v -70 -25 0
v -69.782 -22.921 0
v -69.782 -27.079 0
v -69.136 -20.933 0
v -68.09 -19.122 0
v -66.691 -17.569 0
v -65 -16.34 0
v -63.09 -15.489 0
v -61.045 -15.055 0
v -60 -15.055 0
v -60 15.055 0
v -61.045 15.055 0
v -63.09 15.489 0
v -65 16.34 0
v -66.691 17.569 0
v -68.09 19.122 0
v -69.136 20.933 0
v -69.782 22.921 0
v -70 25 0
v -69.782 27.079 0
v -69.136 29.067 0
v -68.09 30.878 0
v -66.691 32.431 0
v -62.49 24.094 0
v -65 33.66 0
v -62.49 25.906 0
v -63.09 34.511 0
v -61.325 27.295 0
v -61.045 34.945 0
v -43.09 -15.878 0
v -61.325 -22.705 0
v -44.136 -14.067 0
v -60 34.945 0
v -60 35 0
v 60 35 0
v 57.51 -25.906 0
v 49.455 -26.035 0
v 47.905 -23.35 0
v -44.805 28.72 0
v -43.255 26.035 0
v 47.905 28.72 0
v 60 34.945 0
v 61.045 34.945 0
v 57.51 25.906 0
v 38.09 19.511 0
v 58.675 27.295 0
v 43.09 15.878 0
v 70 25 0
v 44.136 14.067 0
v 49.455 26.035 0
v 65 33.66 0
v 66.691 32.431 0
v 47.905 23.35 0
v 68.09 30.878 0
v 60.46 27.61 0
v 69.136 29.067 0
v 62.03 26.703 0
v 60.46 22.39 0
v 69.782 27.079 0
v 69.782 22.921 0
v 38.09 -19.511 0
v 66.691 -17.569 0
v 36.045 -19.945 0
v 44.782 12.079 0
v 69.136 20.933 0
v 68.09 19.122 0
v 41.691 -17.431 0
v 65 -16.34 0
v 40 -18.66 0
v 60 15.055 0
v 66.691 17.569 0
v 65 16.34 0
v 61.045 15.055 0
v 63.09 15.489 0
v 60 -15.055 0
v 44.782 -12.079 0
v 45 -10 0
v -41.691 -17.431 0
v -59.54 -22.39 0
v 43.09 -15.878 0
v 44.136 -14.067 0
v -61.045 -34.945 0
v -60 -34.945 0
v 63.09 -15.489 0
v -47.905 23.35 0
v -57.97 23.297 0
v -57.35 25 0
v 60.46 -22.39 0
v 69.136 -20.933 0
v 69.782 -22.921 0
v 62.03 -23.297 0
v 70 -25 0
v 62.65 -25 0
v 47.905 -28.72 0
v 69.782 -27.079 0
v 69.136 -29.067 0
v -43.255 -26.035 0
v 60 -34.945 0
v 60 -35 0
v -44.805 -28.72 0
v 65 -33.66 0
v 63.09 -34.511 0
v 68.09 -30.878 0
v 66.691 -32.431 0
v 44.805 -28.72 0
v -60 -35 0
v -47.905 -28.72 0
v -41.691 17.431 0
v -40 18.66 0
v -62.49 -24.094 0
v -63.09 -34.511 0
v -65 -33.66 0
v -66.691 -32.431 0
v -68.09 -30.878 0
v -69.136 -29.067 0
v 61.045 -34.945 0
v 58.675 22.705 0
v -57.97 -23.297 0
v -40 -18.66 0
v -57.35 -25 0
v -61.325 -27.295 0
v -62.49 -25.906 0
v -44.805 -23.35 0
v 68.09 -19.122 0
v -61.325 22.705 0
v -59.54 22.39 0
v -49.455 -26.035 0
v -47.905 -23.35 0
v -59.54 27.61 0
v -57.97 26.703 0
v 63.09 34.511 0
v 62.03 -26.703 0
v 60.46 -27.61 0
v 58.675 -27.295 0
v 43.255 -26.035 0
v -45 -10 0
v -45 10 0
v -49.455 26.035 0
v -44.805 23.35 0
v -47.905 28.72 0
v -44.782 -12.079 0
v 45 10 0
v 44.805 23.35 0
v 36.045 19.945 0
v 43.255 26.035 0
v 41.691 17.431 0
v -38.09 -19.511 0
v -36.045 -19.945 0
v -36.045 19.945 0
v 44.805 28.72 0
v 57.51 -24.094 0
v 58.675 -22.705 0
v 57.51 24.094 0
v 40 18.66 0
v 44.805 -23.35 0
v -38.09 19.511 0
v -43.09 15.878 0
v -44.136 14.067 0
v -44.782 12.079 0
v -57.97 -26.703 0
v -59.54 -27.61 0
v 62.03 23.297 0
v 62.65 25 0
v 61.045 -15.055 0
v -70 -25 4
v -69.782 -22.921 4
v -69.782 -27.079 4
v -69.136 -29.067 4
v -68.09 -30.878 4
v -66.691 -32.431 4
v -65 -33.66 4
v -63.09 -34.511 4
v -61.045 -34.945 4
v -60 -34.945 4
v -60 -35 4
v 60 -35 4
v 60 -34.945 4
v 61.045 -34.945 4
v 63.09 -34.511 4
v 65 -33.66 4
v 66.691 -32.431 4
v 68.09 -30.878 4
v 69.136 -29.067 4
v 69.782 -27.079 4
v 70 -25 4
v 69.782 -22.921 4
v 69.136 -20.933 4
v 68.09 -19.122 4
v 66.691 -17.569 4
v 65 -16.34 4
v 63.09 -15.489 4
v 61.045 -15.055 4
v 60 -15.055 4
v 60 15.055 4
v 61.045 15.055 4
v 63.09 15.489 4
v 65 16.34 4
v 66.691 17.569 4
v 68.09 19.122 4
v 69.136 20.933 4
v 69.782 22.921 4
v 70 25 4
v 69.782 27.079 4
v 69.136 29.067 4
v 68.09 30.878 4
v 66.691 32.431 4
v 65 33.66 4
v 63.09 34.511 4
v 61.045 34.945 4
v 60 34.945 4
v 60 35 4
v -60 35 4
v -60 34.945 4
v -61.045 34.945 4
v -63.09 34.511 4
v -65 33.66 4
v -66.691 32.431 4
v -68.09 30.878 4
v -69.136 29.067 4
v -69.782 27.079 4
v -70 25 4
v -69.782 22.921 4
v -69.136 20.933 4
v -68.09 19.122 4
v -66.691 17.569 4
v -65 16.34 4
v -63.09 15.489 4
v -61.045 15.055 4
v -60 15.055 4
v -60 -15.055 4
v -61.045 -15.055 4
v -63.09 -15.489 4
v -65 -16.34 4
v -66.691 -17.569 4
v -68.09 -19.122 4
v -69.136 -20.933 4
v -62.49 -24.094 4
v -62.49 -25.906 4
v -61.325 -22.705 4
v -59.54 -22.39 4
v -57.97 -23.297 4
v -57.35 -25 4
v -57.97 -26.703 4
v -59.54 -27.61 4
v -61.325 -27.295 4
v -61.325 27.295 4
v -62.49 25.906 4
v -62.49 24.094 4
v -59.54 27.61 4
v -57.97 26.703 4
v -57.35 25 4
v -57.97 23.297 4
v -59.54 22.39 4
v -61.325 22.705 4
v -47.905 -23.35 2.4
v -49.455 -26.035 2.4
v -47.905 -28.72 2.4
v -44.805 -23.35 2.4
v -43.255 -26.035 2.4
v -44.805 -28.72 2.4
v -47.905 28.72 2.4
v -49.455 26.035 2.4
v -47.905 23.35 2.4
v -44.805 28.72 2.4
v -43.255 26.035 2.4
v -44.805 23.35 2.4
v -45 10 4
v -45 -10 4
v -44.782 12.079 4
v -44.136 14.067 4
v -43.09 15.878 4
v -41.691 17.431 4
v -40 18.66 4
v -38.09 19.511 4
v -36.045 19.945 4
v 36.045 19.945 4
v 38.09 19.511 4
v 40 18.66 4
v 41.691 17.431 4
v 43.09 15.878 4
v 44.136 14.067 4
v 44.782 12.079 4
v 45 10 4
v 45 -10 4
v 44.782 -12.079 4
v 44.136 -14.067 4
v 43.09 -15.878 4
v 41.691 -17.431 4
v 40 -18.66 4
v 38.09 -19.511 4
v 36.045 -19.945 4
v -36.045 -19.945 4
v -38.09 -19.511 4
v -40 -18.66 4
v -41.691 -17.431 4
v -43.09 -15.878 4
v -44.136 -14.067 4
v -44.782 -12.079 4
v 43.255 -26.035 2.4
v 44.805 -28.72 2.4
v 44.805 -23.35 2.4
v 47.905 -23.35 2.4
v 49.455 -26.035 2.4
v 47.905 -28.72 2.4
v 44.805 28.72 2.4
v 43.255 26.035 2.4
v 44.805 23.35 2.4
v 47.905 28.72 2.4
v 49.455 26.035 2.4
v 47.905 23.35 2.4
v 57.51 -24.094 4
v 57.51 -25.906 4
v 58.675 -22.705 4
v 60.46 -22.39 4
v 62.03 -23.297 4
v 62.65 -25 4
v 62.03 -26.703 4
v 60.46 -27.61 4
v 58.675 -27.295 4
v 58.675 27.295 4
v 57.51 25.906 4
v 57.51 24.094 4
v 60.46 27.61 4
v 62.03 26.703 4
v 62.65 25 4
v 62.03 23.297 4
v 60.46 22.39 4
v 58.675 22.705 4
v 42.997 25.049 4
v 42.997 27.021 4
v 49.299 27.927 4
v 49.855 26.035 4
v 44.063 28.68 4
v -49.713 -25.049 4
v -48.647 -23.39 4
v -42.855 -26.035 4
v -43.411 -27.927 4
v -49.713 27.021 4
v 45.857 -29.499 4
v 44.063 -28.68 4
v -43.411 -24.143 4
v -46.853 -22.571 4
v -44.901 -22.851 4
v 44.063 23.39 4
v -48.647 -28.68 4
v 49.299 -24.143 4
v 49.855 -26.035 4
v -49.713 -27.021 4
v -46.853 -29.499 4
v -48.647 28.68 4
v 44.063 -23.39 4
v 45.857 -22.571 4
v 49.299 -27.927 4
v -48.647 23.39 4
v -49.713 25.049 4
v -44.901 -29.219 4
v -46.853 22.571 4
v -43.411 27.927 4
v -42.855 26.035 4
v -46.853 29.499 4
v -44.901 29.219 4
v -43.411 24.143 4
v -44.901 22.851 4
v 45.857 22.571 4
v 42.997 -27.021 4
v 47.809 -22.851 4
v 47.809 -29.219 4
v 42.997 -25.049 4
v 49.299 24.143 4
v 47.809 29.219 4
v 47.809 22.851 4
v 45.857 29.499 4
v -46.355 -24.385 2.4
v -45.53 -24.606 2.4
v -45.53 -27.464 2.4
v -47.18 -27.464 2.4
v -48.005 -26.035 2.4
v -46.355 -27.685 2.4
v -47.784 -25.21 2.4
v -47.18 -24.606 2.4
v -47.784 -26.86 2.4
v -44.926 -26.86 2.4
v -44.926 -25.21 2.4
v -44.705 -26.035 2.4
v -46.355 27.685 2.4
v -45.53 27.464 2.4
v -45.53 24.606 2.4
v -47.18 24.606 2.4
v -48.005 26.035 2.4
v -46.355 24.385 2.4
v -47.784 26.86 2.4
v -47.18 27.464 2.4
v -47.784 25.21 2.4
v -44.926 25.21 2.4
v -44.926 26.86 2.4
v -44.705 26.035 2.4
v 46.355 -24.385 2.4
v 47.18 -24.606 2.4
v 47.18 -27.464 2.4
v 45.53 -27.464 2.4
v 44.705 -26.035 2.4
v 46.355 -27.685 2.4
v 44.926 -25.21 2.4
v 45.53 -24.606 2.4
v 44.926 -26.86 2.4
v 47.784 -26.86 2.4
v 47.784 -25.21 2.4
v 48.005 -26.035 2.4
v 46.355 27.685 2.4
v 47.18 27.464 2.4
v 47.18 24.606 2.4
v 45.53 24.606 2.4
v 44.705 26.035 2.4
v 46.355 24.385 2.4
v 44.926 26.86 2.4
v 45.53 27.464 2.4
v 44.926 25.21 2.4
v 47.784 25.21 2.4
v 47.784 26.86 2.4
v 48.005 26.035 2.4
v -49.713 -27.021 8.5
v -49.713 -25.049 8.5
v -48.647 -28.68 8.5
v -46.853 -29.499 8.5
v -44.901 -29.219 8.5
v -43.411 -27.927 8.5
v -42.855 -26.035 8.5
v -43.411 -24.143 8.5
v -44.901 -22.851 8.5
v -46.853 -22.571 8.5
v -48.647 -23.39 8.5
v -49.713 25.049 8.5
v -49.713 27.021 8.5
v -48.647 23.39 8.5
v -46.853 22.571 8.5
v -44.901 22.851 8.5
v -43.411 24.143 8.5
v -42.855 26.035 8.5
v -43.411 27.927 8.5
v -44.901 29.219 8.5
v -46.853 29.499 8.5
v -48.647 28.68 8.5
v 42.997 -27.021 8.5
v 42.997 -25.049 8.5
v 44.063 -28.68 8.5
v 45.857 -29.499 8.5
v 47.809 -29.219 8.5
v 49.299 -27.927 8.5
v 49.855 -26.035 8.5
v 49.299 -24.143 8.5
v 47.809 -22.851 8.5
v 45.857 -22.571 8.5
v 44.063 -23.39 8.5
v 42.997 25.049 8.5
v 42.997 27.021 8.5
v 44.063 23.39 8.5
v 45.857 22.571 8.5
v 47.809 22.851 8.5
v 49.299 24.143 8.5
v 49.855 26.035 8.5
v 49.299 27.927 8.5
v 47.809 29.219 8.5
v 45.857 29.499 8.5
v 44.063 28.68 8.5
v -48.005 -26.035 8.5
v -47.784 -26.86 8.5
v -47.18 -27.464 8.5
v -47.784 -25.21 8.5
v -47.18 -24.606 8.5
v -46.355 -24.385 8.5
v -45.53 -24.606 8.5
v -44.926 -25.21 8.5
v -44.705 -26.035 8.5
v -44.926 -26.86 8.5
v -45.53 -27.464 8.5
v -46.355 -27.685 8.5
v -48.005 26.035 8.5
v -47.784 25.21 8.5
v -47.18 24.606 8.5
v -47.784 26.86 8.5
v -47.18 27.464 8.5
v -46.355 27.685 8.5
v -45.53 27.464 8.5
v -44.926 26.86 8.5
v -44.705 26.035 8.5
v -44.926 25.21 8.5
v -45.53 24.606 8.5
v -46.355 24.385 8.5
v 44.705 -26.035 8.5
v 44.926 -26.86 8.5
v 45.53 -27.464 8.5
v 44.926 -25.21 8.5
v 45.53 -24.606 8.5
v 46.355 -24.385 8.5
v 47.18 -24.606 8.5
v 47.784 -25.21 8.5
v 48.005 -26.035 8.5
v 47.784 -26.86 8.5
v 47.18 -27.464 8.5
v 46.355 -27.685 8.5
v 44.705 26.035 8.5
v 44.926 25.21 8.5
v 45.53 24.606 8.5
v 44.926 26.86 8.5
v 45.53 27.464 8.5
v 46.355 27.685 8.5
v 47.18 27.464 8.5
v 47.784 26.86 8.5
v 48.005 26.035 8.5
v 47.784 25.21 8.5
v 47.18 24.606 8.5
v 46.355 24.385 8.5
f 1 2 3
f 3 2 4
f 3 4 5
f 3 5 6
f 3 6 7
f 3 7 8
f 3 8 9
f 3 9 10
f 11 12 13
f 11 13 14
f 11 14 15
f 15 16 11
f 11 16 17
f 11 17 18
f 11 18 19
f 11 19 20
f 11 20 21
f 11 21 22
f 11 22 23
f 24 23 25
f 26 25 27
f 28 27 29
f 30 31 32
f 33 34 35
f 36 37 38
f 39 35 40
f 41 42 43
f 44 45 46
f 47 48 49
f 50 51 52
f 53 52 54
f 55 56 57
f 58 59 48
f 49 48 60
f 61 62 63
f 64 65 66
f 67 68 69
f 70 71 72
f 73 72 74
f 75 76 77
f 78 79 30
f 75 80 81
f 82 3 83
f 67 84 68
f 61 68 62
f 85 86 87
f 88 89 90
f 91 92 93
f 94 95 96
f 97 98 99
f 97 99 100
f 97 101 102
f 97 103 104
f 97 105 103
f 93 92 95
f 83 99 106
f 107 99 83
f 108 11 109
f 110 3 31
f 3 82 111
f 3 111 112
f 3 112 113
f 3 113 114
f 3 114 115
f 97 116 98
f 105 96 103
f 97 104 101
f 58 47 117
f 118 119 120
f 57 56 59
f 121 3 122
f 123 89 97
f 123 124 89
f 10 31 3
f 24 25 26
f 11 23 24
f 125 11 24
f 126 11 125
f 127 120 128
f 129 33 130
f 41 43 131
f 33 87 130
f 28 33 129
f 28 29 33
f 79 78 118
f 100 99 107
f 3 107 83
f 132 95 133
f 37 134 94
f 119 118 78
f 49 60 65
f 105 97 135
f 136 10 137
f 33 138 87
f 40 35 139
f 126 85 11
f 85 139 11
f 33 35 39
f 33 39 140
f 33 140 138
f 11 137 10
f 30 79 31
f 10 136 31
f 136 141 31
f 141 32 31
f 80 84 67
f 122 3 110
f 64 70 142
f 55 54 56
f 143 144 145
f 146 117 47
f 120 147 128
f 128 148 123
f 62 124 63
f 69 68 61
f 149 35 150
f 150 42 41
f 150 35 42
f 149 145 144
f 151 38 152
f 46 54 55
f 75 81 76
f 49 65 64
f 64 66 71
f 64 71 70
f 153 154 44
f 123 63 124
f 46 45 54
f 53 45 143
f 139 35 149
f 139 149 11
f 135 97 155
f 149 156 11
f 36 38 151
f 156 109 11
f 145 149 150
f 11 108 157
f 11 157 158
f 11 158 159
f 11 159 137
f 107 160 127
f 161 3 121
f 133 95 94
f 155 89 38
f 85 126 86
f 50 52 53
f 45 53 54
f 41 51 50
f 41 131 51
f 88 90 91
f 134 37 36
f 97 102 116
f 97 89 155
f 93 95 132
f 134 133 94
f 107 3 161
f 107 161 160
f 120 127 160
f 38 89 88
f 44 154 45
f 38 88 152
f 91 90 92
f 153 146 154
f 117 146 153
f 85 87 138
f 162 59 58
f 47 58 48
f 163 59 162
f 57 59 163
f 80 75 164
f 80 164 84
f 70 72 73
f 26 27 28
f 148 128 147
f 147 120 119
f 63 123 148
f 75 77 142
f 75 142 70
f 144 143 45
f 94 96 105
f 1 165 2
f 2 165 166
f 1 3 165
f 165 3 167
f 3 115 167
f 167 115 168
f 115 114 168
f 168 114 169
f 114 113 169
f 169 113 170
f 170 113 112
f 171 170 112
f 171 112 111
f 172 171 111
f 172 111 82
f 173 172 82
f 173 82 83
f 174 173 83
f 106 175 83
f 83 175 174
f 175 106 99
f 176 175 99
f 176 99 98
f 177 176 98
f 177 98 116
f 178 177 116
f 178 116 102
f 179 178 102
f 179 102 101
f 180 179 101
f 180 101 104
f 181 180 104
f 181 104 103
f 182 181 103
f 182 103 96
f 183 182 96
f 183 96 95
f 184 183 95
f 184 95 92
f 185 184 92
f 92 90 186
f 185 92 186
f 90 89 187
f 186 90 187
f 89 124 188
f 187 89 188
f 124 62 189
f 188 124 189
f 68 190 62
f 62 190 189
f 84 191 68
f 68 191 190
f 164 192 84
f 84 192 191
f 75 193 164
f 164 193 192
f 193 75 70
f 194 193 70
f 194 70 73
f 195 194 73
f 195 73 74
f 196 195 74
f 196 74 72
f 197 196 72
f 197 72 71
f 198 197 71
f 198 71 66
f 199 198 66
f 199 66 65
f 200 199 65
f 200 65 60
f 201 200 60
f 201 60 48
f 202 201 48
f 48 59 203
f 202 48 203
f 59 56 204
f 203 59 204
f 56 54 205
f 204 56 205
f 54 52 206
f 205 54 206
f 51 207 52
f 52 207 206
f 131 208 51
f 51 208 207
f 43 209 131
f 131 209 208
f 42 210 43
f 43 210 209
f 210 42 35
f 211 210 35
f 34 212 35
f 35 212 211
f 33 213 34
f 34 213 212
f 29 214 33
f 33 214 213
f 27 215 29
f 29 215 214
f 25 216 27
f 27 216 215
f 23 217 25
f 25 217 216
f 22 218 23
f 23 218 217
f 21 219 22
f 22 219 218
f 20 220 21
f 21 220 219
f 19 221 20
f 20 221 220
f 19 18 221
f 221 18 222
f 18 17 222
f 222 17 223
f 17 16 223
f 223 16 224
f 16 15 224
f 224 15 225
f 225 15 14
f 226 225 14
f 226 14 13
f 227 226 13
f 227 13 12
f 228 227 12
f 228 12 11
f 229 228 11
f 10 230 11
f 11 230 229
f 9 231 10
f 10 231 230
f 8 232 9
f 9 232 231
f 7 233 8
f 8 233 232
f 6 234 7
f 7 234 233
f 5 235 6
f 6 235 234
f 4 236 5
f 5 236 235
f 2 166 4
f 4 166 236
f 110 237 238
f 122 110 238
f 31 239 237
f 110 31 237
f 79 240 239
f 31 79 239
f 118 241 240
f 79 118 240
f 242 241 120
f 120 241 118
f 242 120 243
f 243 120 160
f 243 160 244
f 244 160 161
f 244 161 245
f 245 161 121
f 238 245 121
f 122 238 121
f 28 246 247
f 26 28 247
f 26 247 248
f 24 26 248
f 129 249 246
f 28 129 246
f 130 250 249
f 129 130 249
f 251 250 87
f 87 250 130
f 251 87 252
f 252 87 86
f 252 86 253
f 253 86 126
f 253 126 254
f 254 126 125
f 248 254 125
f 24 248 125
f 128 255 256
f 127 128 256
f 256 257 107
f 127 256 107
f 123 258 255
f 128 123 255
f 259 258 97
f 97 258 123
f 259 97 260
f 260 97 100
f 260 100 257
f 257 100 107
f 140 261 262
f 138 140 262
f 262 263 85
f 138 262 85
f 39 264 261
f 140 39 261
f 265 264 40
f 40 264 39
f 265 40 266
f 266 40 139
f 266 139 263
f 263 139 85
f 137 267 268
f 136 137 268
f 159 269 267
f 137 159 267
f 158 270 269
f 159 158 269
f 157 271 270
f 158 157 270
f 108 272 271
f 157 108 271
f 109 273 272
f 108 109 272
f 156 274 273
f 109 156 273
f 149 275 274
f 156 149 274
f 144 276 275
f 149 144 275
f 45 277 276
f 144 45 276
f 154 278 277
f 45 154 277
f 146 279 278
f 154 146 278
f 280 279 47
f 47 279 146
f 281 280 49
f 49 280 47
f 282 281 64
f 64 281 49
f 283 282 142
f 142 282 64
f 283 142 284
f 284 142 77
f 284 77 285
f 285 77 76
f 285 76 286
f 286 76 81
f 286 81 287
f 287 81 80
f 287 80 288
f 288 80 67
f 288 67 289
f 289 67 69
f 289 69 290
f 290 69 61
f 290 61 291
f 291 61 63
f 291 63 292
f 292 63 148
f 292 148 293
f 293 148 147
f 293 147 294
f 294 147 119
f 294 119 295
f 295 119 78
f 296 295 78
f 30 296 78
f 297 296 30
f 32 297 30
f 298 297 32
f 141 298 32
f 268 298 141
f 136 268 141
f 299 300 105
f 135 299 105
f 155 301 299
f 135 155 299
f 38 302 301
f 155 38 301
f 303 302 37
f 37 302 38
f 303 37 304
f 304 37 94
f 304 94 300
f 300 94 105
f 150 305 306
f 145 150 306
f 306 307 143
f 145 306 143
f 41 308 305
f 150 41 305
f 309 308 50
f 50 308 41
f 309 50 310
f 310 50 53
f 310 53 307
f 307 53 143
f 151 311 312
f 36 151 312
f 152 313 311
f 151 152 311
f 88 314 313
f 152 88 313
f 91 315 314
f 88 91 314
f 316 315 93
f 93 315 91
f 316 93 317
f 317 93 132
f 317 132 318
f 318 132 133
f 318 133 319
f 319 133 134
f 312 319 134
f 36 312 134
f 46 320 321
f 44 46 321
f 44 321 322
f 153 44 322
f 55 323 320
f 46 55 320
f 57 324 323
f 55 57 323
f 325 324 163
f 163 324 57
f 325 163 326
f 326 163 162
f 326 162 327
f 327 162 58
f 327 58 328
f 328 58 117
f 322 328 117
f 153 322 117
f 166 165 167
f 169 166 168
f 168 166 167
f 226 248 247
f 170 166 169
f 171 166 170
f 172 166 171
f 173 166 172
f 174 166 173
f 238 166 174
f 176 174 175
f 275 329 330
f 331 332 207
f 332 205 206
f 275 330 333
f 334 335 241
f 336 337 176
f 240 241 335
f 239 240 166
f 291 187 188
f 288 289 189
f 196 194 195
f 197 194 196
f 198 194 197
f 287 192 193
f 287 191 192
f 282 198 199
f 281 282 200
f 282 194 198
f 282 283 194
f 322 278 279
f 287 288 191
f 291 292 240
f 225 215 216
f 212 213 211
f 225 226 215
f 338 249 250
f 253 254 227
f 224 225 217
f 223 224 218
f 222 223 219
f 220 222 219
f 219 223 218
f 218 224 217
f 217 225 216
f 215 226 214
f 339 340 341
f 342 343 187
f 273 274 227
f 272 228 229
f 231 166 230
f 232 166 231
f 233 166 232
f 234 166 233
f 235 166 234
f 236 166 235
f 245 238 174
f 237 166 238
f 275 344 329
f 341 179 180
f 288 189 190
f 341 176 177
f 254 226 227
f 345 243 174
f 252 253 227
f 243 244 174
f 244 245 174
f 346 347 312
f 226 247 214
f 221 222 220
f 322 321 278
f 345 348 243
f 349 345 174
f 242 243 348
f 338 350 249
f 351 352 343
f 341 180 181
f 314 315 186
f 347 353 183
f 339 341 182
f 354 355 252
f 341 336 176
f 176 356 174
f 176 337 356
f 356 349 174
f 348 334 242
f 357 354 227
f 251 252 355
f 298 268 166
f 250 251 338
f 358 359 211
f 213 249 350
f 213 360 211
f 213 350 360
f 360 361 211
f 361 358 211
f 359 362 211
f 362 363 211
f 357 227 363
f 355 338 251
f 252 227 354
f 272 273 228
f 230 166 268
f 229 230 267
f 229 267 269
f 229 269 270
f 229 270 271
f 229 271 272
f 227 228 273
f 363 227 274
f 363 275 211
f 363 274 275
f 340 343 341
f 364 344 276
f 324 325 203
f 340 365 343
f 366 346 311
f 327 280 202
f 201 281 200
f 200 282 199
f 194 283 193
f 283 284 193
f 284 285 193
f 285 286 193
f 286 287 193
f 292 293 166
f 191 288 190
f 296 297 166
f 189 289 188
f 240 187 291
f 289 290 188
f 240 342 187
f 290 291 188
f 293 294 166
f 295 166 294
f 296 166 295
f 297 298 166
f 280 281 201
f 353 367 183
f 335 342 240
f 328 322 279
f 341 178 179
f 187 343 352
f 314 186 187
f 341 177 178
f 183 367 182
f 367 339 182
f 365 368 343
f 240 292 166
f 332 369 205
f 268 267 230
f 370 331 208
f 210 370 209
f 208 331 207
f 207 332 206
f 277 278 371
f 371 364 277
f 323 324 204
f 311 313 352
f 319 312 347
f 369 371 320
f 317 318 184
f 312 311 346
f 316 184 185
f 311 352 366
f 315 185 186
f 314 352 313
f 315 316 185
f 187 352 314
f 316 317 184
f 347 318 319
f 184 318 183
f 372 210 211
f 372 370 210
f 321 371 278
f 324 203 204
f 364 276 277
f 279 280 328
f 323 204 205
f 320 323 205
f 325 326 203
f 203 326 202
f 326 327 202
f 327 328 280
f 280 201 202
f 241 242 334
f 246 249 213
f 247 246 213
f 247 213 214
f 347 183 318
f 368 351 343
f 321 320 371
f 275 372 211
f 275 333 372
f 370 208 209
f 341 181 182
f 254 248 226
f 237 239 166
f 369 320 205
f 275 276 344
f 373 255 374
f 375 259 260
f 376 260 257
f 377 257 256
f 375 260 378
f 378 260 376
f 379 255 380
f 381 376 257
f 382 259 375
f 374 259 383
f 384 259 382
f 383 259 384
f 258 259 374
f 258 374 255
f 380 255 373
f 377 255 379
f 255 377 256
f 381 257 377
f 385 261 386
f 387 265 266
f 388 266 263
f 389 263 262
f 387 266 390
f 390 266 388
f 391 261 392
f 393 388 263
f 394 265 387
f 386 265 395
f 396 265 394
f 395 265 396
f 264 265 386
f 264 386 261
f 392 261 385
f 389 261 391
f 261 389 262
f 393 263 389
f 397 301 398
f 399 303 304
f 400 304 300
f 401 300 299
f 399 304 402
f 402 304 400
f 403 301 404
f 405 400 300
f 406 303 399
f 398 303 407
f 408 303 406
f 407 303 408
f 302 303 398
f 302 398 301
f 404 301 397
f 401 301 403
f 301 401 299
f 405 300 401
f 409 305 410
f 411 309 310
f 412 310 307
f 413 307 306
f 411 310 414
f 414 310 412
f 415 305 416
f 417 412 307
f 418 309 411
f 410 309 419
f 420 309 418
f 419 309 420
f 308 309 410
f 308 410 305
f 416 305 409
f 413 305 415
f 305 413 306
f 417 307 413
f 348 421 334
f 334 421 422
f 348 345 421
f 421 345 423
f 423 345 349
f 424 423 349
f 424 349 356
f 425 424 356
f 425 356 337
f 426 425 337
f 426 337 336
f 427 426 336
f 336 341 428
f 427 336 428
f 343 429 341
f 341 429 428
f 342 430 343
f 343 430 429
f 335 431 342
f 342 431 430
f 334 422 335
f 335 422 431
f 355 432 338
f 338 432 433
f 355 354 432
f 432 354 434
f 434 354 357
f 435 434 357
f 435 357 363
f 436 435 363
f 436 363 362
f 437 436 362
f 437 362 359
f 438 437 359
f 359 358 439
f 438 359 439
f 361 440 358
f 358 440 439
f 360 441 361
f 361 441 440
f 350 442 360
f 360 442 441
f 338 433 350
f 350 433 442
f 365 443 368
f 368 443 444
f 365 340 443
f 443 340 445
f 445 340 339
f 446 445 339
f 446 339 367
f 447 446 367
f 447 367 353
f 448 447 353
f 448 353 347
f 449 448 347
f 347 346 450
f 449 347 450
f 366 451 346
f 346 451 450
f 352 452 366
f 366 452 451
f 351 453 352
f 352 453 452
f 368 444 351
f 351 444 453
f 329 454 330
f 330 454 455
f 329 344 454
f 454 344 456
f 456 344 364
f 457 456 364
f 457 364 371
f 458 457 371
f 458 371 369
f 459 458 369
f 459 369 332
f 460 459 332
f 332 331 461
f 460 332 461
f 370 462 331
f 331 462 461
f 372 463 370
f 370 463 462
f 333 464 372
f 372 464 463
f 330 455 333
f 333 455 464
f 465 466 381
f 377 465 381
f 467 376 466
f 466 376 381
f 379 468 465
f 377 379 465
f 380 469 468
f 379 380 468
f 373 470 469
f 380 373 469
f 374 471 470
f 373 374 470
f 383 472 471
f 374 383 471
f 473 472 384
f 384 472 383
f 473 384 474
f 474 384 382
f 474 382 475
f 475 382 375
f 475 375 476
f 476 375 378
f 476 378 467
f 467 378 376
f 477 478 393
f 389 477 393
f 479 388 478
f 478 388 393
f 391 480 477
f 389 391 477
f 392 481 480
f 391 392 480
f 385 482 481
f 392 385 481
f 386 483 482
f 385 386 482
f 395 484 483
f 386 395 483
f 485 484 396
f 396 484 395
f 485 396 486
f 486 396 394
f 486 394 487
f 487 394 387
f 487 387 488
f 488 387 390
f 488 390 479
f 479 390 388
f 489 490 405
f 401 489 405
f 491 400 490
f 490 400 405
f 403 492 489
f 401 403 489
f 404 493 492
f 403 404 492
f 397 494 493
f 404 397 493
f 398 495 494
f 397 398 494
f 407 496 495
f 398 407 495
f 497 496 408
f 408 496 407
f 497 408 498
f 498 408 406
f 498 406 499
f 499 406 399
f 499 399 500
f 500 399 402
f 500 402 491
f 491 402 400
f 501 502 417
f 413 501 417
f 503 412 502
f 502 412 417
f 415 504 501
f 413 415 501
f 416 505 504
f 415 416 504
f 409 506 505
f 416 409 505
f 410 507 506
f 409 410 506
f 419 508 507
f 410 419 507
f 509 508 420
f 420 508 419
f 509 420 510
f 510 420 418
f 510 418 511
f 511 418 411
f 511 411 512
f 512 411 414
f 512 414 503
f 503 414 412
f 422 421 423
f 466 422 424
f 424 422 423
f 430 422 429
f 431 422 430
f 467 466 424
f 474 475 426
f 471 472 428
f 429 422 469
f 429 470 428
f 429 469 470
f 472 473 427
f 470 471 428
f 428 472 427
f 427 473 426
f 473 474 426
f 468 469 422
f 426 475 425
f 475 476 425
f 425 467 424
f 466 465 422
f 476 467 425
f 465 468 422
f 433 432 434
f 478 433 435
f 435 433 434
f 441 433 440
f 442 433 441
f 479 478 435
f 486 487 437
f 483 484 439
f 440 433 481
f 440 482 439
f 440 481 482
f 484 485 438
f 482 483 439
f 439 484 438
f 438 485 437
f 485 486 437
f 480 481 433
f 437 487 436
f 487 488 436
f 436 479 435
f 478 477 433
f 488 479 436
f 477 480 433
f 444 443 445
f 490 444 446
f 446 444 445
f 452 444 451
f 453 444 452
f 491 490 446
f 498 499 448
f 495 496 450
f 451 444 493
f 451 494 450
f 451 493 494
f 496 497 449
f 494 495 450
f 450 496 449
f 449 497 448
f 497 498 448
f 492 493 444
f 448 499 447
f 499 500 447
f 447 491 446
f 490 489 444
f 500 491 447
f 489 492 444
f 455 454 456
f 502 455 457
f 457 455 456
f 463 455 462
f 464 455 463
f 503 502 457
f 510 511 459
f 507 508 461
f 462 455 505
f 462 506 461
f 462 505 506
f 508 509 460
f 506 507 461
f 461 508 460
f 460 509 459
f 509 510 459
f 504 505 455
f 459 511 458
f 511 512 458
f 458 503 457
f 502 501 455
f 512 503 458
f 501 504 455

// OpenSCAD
*translate([0,0,10])
cube([100,59.69,1.6],center=true);

difference(){
union() {
//boardmount
for(i=[-1,1])
for(j=[-1,1])
translate([i*92.71/2,j*52.07/2,1])
cylinder(r=7/2,h=8.5-1);
translate([0,0,2])
cube([100+20,70,4],center=true);
for(j=[-1,1])
hull()
for(i=[-1,1])
translate([i*120/2,j*50/2,2])
cylinder(r=10,h=4,center=true);
}
hull()
for(i=[-1,1])
for(j=[-1,1])
translate([i*70/2,j*20/2,0])
cylinder(r=10,h=10,center=true);
//boardmount
for(i=[-1,1])
for(j=[-1,1])
translate([i*92.71/2,j*52.07/2,0])
cylinder($fn=12,r=3.3/2,h=30,center=true);
//boardmount
for(i=[-1,1])
for(j=[-1,1])
translate([i*92.71/2,j*52.07/2,0])
cylinder($fn=6,r=6.2/2,h=2.4*2,center=true);
//alumount
for(i=[-1,1])
for(j=[-1,1])
translate([i*120/2,j*50/2,0])
cylinder(r=5.3/2,h=10,center=true);
}
